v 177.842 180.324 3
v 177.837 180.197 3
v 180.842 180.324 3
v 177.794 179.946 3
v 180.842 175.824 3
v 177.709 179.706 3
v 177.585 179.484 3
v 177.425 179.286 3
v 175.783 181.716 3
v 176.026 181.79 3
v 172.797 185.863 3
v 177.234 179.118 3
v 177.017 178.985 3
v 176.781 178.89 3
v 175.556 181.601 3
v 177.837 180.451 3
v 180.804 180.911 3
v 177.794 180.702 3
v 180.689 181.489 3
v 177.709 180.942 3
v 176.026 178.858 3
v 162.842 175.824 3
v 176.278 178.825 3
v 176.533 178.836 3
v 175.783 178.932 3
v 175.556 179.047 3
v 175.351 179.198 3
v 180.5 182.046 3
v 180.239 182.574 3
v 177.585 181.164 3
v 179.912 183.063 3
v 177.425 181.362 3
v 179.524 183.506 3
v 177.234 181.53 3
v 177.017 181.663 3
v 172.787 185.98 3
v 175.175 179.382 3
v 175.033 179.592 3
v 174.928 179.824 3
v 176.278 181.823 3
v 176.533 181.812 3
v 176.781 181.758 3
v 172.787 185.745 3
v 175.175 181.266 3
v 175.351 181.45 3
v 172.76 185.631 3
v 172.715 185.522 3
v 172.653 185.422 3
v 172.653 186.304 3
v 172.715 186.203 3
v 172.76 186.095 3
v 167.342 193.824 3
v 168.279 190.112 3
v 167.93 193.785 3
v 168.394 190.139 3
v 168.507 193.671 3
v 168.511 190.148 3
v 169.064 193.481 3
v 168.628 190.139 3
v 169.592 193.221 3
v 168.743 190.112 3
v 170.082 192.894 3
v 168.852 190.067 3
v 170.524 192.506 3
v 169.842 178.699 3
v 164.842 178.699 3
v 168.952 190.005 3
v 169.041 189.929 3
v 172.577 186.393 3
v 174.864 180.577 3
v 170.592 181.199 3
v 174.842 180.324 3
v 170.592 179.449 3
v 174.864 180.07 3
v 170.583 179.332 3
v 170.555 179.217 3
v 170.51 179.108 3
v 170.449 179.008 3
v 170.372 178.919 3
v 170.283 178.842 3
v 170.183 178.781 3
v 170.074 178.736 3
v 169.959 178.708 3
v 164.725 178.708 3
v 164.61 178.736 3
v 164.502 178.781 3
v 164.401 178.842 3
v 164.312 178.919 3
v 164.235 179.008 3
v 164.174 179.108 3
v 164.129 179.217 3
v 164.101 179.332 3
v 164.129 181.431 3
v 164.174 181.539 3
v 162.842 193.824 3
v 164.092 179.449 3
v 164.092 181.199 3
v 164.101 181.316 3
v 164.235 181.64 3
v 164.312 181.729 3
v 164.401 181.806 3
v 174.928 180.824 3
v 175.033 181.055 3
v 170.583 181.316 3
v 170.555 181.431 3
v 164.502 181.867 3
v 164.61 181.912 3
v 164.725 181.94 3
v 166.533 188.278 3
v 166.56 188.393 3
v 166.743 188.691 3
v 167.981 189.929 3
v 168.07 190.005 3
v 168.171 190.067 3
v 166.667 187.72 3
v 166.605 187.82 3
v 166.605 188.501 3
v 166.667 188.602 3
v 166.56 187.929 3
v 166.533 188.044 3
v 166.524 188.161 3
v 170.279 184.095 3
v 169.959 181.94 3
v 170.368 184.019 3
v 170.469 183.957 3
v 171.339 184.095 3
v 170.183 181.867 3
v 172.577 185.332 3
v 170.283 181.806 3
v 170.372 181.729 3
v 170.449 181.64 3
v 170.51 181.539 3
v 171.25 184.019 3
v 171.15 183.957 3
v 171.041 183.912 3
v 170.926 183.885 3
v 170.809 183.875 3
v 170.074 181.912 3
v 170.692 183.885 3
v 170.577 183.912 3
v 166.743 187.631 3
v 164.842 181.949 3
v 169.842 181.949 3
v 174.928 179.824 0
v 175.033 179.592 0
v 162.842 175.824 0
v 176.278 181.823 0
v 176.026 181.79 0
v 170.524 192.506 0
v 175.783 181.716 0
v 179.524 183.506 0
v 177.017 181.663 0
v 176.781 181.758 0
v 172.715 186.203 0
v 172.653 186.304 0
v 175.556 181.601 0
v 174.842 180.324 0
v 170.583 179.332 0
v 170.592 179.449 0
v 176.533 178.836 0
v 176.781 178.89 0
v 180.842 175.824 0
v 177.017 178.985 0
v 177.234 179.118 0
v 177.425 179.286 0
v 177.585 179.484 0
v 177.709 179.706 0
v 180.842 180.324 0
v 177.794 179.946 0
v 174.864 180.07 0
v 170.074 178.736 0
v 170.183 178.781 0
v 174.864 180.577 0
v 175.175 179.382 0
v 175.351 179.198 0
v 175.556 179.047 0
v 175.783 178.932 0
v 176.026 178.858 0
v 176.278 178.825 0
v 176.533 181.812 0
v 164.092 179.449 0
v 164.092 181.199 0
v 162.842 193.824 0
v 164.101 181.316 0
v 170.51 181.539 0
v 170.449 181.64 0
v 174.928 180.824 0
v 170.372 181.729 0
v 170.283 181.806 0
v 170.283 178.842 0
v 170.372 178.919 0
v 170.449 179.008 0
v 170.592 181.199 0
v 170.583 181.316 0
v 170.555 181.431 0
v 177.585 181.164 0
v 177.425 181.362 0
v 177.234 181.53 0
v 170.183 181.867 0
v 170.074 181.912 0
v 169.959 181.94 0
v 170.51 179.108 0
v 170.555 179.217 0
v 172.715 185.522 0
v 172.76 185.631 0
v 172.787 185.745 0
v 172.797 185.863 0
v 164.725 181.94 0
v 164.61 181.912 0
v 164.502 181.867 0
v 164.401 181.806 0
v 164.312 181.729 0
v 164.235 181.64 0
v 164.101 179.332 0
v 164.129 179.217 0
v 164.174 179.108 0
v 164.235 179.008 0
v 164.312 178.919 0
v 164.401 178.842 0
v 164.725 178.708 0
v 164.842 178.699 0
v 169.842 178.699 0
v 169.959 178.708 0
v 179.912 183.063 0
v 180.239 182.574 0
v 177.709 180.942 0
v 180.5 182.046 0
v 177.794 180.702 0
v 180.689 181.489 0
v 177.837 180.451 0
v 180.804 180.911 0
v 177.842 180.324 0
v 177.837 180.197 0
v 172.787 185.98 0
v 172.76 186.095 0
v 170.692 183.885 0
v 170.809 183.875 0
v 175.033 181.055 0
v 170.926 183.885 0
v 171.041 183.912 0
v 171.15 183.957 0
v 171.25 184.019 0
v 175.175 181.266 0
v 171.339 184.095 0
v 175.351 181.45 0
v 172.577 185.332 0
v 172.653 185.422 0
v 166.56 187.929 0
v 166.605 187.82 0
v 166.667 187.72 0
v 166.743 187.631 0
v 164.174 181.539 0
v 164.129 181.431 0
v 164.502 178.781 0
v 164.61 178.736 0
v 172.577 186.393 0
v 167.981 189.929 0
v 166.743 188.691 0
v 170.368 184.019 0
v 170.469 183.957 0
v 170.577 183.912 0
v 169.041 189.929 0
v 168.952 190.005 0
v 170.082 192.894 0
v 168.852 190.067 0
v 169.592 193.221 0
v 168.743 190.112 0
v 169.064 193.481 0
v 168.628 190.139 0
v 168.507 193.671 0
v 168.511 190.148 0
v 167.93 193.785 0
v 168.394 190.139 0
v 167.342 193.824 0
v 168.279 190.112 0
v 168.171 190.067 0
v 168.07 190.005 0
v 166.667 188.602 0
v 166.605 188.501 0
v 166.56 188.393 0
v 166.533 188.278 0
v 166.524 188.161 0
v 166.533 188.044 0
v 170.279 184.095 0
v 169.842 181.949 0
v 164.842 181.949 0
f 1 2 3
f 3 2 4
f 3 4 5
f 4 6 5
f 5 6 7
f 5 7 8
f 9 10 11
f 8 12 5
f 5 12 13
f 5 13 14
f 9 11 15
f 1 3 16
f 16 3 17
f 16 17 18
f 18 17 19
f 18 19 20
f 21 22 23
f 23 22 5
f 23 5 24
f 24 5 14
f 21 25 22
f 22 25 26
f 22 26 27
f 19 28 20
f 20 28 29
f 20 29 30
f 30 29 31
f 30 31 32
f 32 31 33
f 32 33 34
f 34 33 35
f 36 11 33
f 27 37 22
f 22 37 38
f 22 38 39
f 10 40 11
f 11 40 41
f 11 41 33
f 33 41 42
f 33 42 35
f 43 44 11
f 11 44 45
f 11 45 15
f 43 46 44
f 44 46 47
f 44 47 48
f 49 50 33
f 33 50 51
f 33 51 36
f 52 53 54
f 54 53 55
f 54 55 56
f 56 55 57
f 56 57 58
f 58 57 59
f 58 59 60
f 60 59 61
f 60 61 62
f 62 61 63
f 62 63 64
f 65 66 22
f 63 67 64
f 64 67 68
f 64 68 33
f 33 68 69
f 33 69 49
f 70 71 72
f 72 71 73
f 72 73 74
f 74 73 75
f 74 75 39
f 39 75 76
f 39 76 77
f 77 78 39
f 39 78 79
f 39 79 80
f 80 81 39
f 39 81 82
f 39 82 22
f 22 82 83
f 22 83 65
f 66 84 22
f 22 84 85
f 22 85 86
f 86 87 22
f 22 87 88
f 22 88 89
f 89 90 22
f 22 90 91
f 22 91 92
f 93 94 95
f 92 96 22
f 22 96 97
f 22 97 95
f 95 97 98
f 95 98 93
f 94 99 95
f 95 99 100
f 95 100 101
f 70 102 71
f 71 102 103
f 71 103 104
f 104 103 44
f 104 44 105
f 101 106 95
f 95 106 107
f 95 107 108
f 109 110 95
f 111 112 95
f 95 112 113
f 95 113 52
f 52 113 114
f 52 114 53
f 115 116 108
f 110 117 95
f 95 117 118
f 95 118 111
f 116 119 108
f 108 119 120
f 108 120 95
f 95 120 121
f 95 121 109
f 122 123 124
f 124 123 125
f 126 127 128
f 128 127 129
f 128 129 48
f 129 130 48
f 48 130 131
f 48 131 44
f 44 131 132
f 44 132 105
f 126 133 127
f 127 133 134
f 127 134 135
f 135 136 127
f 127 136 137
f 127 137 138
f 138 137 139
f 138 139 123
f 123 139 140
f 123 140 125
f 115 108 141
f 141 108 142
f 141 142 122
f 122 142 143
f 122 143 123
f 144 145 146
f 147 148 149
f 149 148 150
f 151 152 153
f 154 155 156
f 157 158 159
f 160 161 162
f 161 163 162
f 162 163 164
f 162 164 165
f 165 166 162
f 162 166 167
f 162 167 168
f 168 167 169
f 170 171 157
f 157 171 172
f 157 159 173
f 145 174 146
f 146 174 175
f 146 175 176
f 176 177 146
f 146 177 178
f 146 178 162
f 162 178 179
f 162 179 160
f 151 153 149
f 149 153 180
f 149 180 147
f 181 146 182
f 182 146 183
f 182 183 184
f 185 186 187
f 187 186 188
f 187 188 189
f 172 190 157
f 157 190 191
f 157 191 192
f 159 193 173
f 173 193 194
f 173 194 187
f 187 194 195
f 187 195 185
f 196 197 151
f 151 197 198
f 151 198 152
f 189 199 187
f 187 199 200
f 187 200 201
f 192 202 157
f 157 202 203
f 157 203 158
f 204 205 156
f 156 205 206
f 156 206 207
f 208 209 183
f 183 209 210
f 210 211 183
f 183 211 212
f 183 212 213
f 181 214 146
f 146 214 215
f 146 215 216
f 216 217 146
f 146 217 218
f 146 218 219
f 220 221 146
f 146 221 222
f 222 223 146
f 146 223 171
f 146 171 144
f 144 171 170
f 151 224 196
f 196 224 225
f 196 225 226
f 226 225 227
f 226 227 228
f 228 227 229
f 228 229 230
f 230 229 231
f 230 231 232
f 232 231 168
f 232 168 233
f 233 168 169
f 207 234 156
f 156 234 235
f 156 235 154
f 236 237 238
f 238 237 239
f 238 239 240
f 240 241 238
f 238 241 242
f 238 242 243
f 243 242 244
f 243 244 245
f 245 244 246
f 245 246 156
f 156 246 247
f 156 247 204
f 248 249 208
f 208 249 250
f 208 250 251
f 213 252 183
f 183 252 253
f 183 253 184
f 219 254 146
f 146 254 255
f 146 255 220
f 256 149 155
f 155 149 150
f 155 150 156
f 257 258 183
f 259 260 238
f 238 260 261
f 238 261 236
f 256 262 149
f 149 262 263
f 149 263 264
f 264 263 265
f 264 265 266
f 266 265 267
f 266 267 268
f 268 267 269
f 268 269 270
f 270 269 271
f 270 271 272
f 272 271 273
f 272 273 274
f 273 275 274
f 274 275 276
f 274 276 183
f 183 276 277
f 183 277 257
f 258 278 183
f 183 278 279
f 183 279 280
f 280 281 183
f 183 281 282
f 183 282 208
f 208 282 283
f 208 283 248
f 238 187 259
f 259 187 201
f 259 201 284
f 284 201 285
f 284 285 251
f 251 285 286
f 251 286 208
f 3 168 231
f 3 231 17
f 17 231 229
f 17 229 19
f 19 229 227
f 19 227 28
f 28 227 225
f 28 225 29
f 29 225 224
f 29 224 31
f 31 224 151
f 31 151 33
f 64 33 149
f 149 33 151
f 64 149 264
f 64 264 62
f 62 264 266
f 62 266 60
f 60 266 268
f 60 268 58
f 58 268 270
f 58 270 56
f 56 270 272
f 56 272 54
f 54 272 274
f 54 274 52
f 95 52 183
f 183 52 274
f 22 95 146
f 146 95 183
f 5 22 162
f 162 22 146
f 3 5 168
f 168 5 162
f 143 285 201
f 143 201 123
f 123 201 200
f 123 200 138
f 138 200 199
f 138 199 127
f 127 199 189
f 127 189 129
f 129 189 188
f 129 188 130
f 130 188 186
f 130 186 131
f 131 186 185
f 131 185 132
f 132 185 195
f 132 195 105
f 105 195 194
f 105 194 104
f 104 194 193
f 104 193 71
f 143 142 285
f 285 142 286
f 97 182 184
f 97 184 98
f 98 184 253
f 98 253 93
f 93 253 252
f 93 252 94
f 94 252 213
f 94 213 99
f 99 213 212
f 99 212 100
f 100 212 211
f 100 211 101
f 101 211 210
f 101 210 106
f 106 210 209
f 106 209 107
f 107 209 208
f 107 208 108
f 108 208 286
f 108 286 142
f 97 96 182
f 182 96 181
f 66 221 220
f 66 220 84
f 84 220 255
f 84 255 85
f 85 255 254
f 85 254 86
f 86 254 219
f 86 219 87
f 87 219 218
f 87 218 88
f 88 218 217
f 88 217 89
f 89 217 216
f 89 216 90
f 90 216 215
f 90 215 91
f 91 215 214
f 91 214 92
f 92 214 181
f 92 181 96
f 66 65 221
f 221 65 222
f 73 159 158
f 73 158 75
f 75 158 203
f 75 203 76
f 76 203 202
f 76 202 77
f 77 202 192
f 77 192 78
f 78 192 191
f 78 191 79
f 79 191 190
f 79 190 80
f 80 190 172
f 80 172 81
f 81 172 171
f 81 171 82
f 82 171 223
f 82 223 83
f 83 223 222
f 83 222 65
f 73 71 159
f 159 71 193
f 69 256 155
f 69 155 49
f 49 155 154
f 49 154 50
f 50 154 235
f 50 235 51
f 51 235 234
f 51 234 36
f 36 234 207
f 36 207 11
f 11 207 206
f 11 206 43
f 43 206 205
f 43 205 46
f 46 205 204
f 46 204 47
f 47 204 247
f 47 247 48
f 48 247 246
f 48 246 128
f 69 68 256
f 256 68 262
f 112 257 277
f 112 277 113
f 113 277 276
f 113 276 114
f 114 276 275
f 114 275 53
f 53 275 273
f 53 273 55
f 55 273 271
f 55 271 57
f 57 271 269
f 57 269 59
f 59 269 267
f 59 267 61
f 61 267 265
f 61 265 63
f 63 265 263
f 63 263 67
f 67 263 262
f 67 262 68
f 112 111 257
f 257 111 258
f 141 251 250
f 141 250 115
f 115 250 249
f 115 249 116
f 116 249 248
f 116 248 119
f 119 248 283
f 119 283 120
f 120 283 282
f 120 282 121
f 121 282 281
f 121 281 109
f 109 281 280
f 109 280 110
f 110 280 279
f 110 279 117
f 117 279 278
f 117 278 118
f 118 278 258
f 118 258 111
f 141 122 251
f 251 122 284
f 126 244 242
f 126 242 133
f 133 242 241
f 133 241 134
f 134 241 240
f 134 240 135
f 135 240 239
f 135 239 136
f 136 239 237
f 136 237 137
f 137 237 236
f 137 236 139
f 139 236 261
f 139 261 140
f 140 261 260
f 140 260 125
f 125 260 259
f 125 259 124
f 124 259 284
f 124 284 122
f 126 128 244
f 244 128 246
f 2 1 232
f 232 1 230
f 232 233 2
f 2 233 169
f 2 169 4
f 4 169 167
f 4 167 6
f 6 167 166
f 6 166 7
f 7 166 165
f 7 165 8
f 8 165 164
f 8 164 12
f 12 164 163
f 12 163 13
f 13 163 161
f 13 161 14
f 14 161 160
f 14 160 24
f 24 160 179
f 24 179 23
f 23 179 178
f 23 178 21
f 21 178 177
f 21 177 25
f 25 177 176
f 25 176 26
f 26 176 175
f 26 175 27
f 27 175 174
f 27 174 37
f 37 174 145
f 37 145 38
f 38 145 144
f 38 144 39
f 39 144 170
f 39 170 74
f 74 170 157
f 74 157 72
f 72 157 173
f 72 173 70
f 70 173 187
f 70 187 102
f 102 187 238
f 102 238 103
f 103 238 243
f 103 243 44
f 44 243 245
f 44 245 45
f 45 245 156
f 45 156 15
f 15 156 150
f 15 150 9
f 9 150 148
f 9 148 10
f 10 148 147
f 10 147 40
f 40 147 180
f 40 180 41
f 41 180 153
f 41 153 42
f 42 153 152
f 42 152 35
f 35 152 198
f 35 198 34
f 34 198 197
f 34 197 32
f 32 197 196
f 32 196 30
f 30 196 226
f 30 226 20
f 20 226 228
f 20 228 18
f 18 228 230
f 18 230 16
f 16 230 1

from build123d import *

# Parameters (mm, degrees)
MODEL_R                 = 1.5
SALIENTE_EXTRUIR1_DEPTH = 3


with BuildPart() as part:
    # Model → Saliente-Extruir1 (new body)
    with BuildSketch(Plane.XY):
        with BuildLine():
            Line((180.84213351, 175.823953209), (162.84213351, 175.823953209))
            Line((162.84213351, 175.823953209), (162.84213351, 193.823953209))
            Line((162.84213351, 193.823953209), (167.34213351, 193.823953209))
            ThreePointArc((167.34213351, 193.823953209), (169.064208955, 193.481411105), (170.524114025, 192.505933724))
            Line((170.524114025, 192.505933724), (179.524114025, 183.505933724))
            ThreePointArc((179.524114025, 183.505933724), (180.499591406, 182.046028655), (180.84213351, 180.323953209))
            Line((180.84213351, 180.323953209), (180.84213351, 175.823953209))
        make_face()
        with Locations((176.34213351, 180.323953209)):
            Circle(MODEL_R, mode=Mode.SUBTRACT)
        with BuildLine():
            Line((164.84213351, 181.948953209), (169.84213351, 181.948953209))
            ThreePointArc((169.84213351, 181.948953209), (170.372463595, 181.729283295), (170.59213351, 181.198953209))
            Line((170.59213351, 181.198953209), (170.59213351, 179.448953209))
            ThreePointArc((170.59213351, 179.448953209), (170.372463595, 178.918623123), (169.84213351, 178.698953209))
            Line((169.84213351, 178.698953209), (164.84213351, 178.698953209))
            ThreePointArc((164.84213351, 178.698953209), (164.311803424, 178.918623123), (164.09213351, 179.448953209))
            Line((164.09213351, 179.448953209), (164.09213351, 181.198953209))
            ThreePointArc((164.09213351, 181.198953209), (164.311803424, 181.729283295), (164.84213351, 181.948953209))
        make_face(mode=Mode.SUBTRACT)
        with BuildLine():
            Line((169.041348982, 189.928670304), (172.576882888, 186.393136398))
            ThreePointArc((172.576882888, 186.393136398), (172.796552802, 185.862806312), (172.576882888, 185.332476227))
            Line((172.576882888, 185.332476227), (171.339446021, 184.095039359))
            ThreePointArc((171.339446021, 184.095039359), (170.809115935, 183.875369445), (170.278785849, 184.095039359))
            Line((170.278785849, 184.095039359), (166.743251943, 187.630573265))
            ThreePointArc((166.743251943, 187.630573265), (166.523582029, 188.160903351), (166.743251943, 188.691233437))
            Line((166.743251943, 188.691233437), (167.98068881, 189.928670304))
            ThreePointArc((167.98068881, 189.928670304), (168.511018896, 190.148340218), (169.041348982, 189.928670304))
        make_face(mode=Mode.SUBTRACT)
    extrude(amount=SALIENTE_EXTRUIR1_DEPTH)


solid = part.part
